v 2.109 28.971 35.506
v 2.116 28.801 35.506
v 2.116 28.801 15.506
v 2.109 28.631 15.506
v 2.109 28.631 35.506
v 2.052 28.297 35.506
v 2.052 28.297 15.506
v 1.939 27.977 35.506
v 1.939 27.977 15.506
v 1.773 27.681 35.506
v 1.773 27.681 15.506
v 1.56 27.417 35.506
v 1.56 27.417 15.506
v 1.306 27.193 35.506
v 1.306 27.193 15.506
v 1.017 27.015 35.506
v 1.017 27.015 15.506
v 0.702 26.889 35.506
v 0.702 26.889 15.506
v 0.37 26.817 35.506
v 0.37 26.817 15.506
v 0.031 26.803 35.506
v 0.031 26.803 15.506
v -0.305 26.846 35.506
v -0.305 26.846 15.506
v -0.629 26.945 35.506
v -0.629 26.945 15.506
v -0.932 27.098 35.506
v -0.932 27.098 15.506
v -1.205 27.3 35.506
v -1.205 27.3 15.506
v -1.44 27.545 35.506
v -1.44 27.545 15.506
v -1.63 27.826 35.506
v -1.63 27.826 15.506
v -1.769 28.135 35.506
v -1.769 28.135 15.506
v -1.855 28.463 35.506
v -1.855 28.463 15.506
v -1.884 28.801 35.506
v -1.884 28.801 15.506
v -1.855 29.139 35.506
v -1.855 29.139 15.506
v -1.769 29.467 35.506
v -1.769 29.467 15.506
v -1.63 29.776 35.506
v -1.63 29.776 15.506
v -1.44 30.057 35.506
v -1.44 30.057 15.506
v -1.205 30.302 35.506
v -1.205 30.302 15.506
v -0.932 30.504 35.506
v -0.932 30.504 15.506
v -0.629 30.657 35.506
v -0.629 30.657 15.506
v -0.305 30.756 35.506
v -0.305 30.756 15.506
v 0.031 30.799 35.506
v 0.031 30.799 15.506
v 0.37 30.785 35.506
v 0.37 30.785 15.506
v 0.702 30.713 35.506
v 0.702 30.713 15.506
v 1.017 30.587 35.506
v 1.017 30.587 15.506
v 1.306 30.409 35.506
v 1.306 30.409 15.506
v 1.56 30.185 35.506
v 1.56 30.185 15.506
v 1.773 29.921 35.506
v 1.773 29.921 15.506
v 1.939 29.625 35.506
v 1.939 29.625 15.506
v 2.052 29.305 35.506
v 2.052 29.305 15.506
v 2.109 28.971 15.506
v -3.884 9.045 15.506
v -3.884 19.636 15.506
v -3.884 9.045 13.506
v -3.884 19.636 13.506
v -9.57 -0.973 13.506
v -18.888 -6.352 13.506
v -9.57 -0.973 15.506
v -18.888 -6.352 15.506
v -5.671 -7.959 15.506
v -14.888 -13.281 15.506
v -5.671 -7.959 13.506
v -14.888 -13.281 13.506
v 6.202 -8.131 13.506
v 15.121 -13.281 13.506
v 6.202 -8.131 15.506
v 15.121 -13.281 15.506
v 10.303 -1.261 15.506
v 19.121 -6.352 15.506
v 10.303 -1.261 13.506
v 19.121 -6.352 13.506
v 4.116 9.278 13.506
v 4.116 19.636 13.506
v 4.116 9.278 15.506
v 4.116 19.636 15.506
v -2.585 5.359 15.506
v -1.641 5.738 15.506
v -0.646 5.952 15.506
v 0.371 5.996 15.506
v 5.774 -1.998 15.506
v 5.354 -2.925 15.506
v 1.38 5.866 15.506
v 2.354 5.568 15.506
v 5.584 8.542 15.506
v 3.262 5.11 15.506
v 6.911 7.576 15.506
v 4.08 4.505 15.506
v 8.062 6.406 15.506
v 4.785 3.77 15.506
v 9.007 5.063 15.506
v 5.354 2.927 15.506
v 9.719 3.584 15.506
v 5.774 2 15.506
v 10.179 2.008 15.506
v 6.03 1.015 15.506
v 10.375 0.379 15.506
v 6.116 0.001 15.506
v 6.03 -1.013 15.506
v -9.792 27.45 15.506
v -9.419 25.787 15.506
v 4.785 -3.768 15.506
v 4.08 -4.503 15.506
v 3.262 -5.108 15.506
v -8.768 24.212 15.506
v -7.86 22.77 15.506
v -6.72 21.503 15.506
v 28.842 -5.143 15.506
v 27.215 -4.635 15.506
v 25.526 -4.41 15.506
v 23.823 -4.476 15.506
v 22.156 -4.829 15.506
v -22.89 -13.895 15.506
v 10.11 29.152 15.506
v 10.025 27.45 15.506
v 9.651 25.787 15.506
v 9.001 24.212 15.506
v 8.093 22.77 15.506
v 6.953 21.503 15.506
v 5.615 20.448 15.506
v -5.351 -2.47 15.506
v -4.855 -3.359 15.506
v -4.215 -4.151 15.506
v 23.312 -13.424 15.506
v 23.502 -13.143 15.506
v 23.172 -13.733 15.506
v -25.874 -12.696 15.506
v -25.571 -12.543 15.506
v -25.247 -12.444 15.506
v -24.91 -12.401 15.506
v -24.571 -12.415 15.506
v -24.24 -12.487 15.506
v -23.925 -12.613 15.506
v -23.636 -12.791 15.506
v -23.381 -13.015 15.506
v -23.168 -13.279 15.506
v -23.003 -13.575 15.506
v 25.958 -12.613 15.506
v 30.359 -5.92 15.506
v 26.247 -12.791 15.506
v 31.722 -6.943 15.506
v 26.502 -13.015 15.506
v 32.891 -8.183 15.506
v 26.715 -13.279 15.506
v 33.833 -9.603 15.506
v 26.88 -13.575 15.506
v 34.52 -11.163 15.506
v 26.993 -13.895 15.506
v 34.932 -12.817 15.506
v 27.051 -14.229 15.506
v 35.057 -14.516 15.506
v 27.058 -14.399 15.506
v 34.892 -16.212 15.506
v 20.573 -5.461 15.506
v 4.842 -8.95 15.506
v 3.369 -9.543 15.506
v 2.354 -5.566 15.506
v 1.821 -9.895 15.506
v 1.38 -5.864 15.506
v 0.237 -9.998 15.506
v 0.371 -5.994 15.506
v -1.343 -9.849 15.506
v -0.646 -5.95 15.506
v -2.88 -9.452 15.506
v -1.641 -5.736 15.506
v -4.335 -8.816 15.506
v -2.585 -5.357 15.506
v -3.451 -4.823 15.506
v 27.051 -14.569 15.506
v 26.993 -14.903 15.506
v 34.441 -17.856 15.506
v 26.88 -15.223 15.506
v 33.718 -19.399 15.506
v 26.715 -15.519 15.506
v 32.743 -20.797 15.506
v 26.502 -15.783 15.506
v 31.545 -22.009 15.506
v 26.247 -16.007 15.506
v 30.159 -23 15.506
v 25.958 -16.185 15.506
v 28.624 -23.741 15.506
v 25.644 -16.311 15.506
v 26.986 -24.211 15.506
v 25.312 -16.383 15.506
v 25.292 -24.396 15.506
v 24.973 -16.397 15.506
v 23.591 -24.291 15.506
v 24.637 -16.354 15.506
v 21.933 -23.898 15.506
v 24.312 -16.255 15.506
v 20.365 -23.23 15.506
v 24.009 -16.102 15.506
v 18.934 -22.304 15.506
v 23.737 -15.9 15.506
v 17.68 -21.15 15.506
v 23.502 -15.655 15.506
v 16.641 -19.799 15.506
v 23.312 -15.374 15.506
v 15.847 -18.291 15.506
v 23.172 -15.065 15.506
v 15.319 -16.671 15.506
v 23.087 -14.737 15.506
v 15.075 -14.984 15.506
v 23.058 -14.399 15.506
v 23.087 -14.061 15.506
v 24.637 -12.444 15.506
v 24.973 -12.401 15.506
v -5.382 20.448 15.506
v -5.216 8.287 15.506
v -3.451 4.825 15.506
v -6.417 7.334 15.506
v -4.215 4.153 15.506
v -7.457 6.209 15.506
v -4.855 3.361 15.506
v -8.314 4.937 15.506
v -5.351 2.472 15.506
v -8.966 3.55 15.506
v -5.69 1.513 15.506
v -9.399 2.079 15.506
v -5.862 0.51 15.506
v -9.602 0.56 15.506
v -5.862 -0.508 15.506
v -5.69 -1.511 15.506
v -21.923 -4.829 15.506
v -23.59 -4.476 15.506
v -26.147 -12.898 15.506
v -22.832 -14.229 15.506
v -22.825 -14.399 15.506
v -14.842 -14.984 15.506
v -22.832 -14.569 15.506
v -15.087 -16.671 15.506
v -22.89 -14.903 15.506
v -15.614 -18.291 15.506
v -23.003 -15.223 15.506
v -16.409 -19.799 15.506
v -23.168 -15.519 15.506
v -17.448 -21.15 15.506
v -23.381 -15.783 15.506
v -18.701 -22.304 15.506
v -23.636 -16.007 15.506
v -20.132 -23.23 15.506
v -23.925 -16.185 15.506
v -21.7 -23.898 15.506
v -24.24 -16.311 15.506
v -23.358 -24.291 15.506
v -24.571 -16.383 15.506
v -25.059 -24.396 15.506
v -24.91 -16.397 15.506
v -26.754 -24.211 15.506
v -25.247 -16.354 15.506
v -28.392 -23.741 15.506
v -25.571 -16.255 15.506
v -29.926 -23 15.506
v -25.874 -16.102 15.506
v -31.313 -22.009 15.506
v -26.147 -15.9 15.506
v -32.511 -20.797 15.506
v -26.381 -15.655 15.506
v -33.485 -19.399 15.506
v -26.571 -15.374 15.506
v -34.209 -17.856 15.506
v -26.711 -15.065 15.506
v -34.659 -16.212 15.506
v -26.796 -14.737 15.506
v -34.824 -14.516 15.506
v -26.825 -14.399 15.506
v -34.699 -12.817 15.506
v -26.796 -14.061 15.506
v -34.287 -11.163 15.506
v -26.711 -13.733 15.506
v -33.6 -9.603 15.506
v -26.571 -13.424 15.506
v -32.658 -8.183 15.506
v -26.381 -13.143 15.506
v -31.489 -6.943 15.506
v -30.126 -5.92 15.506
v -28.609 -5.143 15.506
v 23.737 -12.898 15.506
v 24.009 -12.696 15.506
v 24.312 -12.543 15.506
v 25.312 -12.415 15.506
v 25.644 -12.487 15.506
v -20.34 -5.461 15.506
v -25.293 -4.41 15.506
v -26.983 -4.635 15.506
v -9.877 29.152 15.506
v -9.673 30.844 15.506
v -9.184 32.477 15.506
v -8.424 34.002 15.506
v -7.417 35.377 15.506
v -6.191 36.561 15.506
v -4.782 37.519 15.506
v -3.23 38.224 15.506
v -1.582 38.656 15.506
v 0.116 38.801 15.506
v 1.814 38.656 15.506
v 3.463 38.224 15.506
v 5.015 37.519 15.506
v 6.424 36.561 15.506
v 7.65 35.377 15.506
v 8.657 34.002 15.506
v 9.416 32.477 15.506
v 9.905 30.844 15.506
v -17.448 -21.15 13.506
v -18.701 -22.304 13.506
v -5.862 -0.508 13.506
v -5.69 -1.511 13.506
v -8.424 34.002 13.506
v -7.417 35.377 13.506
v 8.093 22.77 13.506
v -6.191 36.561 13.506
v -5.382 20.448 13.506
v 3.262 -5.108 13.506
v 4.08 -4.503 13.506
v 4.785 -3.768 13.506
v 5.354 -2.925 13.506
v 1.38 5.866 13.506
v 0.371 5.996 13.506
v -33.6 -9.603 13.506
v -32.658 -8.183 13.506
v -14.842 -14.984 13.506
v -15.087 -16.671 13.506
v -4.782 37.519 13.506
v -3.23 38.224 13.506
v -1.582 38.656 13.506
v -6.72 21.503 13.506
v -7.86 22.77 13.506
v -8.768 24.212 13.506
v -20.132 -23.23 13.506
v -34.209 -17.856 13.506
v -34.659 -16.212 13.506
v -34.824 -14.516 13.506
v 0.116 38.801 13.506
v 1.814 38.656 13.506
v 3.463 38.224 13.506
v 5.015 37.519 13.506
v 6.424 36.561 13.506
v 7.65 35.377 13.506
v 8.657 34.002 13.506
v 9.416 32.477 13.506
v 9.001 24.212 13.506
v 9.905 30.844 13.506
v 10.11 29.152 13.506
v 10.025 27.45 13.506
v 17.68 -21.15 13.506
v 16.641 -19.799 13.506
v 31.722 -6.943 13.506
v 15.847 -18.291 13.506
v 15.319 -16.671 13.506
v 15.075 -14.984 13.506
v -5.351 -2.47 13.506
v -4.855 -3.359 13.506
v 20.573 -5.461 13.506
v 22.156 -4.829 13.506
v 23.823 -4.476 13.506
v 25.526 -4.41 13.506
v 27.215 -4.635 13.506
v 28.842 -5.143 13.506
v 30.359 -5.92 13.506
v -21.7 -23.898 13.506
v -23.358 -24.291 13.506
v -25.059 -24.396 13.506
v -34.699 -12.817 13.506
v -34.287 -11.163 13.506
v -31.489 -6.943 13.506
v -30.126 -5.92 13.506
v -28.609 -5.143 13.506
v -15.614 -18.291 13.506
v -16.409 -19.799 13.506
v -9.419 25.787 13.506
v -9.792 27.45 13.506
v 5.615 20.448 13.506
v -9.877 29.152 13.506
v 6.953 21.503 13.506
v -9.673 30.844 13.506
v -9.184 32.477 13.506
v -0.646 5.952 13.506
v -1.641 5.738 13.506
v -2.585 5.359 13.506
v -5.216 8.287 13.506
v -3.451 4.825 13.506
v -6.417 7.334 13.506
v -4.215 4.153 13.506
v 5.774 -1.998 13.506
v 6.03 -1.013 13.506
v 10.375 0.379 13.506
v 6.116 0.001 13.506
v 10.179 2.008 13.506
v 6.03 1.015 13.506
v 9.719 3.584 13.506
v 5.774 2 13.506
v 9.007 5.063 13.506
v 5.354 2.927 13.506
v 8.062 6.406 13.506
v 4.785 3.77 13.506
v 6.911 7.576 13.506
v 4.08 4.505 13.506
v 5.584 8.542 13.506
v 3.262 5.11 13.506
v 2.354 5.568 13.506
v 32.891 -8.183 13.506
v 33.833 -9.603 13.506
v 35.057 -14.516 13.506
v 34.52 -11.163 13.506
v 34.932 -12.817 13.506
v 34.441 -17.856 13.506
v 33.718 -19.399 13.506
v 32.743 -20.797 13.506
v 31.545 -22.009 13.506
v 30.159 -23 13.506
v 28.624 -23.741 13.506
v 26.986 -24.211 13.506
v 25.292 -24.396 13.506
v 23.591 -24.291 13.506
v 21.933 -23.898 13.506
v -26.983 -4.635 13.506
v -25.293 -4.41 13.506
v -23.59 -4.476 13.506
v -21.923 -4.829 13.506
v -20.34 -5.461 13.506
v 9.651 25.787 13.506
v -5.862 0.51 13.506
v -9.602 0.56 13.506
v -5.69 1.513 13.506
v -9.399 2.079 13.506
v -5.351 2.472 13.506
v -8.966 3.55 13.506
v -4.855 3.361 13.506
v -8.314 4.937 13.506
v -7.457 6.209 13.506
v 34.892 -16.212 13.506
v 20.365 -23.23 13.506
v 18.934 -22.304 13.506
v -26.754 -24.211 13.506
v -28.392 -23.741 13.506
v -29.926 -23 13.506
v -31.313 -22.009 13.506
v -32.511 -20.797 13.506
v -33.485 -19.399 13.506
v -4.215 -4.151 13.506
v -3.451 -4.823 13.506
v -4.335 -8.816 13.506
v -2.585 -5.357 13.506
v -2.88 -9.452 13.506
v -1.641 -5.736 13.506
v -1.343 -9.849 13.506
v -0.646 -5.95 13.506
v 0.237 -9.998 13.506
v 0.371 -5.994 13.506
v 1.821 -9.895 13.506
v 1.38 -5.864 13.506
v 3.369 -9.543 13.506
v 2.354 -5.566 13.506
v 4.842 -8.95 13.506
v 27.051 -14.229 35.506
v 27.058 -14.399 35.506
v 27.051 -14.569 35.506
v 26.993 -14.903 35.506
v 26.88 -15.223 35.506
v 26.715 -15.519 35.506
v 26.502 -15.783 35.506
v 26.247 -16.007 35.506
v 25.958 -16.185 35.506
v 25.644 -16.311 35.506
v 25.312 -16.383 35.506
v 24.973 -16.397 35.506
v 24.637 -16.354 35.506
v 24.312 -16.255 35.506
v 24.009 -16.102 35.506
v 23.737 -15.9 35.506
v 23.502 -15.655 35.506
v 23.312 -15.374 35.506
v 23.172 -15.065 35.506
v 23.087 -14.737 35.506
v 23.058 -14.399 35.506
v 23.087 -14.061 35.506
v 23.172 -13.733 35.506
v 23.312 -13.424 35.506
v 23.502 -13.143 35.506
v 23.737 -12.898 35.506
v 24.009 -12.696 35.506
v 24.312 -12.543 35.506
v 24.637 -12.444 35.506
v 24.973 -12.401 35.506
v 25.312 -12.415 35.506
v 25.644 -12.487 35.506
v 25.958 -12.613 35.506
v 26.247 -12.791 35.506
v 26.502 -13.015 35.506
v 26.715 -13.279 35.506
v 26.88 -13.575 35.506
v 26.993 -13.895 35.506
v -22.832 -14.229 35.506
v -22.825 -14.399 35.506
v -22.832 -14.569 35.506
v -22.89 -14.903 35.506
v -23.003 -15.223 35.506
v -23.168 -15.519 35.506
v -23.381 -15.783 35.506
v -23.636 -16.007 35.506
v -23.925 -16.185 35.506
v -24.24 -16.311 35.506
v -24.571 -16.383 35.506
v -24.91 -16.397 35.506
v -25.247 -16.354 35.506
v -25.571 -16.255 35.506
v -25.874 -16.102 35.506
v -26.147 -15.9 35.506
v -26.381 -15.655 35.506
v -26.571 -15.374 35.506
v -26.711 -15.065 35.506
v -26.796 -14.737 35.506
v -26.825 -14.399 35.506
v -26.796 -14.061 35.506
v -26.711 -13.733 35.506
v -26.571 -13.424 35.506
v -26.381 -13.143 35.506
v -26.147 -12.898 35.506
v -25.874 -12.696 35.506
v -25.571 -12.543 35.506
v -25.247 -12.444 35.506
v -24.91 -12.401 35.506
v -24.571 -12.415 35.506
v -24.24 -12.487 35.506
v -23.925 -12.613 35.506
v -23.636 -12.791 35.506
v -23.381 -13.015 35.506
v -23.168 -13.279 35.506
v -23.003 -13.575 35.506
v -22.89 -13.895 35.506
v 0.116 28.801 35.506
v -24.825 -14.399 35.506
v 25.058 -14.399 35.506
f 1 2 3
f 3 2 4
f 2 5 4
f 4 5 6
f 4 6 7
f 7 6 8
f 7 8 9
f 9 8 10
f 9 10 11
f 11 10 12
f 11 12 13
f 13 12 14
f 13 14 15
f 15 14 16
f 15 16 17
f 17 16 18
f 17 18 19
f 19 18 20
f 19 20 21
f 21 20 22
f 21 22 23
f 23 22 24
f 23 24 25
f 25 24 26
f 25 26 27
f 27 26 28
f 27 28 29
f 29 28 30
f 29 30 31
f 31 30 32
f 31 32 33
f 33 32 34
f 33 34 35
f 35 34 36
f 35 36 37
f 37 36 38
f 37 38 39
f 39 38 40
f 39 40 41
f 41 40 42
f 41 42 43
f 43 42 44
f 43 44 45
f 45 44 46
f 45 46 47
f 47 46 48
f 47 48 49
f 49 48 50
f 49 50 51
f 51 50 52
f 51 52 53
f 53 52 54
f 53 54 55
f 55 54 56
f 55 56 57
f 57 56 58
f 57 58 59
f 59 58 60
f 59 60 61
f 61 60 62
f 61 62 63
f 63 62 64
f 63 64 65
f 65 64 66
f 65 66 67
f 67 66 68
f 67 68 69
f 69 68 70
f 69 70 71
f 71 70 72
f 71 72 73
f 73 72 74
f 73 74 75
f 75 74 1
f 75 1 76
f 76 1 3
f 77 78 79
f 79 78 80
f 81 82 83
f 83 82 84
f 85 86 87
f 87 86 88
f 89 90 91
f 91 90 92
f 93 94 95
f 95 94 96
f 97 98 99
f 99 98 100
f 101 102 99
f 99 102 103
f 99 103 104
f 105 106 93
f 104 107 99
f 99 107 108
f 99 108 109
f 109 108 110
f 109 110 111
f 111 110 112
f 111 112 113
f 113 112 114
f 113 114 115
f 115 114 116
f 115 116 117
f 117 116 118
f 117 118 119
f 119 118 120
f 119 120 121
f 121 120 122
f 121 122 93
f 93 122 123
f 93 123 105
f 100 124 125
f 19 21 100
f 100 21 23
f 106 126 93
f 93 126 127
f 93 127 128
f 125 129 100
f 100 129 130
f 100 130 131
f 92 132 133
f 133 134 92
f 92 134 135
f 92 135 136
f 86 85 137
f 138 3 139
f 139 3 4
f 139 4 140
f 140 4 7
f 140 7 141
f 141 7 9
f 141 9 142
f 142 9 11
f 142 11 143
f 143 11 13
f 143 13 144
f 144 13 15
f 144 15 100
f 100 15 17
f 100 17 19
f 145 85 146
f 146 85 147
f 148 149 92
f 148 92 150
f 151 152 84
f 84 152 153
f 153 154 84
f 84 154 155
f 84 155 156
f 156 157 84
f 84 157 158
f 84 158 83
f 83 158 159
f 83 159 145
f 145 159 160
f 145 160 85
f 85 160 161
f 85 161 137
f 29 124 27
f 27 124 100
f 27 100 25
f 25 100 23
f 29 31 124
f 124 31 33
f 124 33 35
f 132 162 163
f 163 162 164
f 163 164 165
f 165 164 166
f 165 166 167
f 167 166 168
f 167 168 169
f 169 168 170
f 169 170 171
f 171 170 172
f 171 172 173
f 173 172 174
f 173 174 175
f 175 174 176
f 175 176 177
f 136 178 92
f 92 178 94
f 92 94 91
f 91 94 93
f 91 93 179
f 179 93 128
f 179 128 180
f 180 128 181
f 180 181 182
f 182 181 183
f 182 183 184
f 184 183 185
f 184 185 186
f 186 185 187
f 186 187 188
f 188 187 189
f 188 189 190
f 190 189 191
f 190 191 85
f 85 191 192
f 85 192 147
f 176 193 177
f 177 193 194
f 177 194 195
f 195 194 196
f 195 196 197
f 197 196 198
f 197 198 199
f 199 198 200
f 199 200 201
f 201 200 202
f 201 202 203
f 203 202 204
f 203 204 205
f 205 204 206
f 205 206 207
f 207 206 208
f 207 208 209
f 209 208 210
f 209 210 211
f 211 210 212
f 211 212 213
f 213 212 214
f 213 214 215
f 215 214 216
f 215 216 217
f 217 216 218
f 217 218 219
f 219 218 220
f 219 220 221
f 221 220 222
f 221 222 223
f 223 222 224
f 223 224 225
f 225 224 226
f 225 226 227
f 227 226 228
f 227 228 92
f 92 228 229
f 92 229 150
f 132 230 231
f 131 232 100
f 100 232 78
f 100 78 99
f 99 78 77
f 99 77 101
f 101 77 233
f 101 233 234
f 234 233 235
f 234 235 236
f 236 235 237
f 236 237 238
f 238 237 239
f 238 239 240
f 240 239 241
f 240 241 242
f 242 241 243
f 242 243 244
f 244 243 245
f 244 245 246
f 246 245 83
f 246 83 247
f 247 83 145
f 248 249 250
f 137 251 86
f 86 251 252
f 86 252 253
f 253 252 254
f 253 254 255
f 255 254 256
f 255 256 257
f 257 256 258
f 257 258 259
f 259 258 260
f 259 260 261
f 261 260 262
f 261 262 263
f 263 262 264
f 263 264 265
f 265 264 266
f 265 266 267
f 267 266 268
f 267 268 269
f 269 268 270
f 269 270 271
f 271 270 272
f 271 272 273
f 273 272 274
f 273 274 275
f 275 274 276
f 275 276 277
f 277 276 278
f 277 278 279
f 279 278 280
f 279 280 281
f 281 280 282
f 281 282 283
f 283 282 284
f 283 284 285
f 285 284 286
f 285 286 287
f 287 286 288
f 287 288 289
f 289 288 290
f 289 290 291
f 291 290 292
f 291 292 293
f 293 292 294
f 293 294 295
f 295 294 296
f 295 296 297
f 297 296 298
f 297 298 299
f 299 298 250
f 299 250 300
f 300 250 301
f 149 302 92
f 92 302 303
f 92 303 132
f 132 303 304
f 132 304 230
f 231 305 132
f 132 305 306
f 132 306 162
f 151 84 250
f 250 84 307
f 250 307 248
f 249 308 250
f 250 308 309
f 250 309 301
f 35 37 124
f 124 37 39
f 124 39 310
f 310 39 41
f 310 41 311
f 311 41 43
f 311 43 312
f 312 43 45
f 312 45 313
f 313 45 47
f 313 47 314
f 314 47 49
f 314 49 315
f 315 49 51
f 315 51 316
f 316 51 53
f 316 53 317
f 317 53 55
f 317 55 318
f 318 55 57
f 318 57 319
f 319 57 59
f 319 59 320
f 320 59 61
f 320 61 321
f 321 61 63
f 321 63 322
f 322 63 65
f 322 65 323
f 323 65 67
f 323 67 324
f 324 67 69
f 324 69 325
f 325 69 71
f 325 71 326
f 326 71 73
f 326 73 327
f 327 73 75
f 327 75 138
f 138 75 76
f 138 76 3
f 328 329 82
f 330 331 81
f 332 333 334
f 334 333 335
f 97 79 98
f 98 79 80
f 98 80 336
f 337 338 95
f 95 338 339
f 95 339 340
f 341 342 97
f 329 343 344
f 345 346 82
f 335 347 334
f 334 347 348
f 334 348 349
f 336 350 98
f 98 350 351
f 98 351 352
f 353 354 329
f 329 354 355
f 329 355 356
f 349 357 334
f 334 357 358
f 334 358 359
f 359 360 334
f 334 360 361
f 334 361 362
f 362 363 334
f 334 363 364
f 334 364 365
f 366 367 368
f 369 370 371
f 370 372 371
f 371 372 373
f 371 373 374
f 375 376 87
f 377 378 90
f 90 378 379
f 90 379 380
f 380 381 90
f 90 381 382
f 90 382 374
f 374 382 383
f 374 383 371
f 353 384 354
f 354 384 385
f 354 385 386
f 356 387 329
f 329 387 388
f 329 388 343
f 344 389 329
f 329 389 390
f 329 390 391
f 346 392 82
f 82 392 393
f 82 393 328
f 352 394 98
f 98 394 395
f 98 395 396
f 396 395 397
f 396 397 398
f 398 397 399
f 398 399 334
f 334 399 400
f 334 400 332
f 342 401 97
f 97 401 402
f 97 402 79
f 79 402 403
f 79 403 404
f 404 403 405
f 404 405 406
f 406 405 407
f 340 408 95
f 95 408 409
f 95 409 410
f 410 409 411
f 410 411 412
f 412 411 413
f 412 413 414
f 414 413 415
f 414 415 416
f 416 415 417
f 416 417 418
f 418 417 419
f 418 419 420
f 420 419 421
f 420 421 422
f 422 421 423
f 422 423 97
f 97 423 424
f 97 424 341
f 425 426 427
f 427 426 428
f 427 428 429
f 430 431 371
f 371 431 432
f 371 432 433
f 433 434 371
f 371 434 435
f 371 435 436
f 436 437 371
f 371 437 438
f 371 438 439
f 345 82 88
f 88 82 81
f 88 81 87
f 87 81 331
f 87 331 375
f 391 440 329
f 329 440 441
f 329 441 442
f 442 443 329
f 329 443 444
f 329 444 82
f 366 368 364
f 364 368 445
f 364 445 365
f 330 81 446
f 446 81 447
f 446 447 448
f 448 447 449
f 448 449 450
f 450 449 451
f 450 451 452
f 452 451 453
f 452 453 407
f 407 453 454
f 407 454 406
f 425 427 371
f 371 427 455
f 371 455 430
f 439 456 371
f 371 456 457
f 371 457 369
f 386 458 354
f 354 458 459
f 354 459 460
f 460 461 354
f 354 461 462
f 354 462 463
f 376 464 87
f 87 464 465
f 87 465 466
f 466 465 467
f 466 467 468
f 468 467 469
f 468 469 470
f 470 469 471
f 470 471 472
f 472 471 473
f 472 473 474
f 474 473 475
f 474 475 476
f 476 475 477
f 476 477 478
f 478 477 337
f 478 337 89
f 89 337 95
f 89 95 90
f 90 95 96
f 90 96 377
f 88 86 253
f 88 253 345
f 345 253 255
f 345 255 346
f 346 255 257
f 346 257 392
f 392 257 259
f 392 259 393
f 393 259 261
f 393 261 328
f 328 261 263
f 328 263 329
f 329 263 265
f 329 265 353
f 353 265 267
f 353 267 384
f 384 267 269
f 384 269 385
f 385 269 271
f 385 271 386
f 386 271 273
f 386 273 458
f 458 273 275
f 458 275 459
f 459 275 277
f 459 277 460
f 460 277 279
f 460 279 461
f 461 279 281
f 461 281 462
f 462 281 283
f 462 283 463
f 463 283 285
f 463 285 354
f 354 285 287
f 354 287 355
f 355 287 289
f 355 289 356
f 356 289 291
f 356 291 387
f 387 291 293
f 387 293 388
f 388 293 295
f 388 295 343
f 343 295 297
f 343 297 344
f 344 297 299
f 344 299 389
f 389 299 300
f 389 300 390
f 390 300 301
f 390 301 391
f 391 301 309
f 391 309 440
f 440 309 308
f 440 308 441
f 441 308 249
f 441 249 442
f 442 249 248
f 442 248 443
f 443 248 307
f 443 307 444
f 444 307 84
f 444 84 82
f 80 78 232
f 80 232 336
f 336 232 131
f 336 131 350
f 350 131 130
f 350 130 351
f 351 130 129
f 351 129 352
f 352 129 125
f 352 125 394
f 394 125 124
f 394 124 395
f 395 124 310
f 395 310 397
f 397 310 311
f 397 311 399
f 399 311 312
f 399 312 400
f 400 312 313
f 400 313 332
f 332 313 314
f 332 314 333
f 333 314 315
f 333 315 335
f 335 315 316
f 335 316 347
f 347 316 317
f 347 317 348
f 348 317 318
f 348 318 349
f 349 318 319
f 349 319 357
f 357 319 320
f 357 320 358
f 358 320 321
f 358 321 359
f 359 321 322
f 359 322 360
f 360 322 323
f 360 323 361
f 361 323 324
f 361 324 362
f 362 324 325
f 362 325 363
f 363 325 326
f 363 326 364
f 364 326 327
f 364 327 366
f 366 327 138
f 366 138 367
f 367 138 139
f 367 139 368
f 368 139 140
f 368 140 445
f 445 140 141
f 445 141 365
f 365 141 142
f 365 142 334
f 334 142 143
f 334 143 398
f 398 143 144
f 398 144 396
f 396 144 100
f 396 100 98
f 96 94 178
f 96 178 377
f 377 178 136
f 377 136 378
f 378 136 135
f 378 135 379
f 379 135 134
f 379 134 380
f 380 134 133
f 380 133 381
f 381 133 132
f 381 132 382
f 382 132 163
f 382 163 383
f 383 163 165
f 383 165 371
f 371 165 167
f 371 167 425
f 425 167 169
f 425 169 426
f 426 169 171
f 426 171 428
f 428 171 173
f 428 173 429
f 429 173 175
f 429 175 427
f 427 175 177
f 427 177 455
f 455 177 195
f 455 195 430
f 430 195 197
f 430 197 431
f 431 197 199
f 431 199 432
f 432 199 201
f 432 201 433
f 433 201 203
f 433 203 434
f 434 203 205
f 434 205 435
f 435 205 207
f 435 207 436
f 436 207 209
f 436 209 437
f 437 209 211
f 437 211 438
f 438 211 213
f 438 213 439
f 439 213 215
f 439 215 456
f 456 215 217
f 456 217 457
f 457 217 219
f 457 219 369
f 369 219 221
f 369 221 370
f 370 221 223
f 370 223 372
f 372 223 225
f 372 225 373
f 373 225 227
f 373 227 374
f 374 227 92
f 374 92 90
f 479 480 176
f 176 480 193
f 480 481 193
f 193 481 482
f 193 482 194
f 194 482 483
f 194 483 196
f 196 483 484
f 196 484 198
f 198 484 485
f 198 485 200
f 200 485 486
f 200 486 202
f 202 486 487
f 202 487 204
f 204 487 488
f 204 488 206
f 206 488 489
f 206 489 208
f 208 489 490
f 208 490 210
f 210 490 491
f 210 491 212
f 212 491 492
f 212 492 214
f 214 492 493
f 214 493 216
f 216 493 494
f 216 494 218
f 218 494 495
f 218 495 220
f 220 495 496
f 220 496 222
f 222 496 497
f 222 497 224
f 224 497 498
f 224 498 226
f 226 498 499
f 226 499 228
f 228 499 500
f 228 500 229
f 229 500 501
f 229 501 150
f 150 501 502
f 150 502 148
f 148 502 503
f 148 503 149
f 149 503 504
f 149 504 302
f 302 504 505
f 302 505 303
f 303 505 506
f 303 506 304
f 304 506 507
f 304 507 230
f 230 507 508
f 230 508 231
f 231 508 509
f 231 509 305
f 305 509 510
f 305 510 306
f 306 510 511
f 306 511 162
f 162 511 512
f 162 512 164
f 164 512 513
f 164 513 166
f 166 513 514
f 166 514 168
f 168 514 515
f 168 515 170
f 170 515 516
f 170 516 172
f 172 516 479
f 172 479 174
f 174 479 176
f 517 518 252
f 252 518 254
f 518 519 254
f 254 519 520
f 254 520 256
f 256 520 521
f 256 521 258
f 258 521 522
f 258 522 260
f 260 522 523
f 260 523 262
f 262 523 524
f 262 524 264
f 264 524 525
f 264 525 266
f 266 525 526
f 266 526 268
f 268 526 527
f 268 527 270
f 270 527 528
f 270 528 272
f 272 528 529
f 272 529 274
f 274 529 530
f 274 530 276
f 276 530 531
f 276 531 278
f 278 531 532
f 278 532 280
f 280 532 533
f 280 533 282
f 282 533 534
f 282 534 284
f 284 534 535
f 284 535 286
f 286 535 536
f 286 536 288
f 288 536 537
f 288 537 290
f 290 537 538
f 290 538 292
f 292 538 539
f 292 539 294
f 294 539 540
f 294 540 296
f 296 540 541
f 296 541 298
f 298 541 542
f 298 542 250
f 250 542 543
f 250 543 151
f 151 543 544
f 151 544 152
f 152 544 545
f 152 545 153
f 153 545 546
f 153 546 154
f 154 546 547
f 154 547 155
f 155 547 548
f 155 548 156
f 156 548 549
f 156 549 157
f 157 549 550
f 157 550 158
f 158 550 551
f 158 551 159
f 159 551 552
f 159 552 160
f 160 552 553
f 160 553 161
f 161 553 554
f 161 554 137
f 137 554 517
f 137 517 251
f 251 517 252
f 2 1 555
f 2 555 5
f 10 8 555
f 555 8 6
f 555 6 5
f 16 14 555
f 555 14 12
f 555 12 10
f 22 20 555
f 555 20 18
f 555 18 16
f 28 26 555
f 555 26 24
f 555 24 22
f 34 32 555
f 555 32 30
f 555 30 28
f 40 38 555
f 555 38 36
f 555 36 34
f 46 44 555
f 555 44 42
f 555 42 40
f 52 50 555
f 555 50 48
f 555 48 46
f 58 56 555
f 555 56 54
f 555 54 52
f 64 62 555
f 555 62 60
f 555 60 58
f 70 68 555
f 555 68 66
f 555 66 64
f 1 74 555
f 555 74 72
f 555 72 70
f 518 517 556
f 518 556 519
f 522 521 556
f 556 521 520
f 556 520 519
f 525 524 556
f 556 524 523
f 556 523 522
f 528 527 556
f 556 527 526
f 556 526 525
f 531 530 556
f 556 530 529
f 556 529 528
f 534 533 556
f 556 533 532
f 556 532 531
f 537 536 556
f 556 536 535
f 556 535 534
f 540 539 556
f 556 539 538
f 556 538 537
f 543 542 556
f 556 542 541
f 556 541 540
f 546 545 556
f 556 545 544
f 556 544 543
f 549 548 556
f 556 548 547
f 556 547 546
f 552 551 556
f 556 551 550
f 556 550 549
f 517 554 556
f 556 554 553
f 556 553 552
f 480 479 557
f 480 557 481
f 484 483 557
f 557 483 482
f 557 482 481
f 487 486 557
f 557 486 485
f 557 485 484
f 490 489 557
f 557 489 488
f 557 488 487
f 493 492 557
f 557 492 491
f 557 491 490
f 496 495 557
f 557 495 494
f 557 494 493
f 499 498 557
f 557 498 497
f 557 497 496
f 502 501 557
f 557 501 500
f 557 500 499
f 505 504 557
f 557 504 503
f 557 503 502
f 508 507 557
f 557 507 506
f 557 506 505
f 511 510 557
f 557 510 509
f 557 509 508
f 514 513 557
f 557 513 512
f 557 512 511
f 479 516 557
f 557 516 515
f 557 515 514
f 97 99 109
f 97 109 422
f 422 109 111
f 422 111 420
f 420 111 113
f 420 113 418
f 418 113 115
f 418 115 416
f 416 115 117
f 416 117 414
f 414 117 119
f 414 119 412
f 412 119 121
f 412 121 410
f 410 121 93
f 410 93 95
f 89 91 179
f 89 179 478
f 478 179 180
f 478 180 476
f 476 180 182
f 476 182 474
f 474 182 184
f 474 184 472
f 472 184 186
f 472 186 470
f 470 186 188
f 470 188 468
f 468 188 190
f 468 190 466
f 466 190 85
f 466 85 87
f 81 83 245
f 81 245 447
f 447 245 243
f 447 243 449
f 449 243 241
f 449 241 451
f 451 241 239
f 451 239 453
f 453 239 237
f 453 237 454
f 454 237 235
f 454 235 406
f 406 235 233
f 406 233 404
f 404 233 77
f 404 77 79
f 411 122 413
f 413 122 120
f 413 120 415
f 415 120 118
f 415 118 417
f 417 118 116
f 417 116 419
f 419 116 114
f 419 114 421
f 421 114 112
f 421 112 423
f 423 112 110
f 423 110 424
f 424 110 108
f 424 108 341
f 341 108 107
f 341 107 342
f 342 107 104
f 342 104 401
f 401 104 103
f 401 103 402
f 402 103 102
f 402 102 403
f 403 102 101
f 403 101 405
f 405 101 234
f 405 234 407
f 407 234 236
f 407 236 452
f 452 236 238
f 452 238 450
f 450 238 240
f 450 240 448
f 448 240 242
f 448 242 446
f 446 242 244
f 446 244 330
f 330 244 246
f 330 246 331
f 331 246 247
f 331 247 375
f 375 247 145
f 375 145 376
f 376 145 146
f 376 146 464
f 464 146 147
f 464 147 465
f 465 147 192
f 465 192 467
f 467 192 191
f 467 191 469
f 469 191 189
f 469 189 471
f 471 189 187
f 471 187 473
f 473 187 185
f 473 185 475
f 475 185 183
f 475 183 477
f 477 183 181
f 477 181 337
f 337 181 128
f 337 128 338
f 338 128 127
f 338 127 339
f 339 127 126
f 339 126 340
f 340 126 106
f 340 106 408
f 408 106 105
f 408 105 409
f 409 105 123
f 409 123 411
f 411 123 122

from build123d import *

# Parameters (mm, degrees)
BOSS_EXTRUDE2_DEPTH = 10
SKETCH3_R           = 50
BOSS_EXTRUDE3_DEPTH = 10
SKETCH4_R           = 10
BOSS_EXTRUDE4_DEPTH = 90
CUT_EXTRUDE1_START  = -30
SKETCH5_R           = 10
CUT_EXTRUDE1_DEPTH  = 30
SKETCH6_R           = 13
CUT_EXTRUDE2_DEPTH  = 10
SKETCH7_R           = 10
BOSS_EXTRUDE5_DEPTH = 30
SKETCH9_R           = 10
BOSS_EXTRUDE6_DEPTH = 10
SKETCH10_R          = 10
BOSS_EXTRUDE7_DEPTH = 10
SKETCH11_R          = 10
BOSS_EXTRUDE8_DEPTH = 10
SKETCH12_R          = 50
BOSS_EXTRUDE9_DEPTH = 10
SKETCH13_R          = 30
CUT_EXTRUDE3_DEPTH  = 10
SCALE1_SCALE        = 0.2


with BuildPart() as part:
    # Sketch1 → Boss-Extrude2 (new body)
    with BuildSketch(Plane.XY):
        Polygon((20, 144), (-20, 144), (-20, 11.547005384), (-134.707658145, -54.679491924), (-114.707658145, -89.320508076), (0, -23.094010768), (114.707658145, -89.320508076), (134.707658145, -54.679491924), (20, 11.547005384), align=None)
    extrude(amount=BOSS_EXTRUDE2_DEPTH)

    # Sketch3 → Boss-Extrude3 (add)
    with BuildSketch(Plane.XY.offset(10)):
        with Locations((-124.707658145, -72)):
            Circle(SKETCH3_R)
        with Locations((0, 144)):
            Circle(SKETCH3_R)
        with Locations((124.707658145, -72)):
            Circle(SKETCH3_R)
    extrude(amount=-BOSS_EXTRUDE3_DEPTH)

    # Sketch4 → Boss-Extrude4 (add)
    with BuildSketch(Plane.XY.offset(10)):
        with Locations(Location((0, 144, 0), (0, 0, 180))):
            Circle(SKETCH4_R)
        with Locations(Location((124.707658145, -72, 0), (0, 0, 180))):
            Circle(SKETCH4_R)
        with Locations(Location((-124.707658145, -72, 0), (0, 0, 180))):
            Circle(SKETCH4_R)
    extrude(amount=BOSS_EXTRUDE4_DEPTH)

    # Sketch5 → Cut-Extrude1 (cut)
    with BuildSketch(Plane.XY.offset(100).offset(CUT_EXTRUDE1_START)):
        with Locations(Location((0, 144, 0), (0, 0, 180))):
            Circle(SKETCH5_R)
    extrude(amount=CUT_EXTRUDE1_DEPTH, mode=Mode.SUBTRACT)

    # Sketch6 → Cut-Extrude2 (cut)
    with BuildSketch(Plane.XY.offset(10)):
        Circle(SKETCH6_R)
    extrude(amount=-CUT_EXTRUDE2_DEPTH, mode=Mode.SUBTRACT)

    # Sketch7 → Boss-Extrude5 (add)
    with BuildSketch(Plane.XY.offset(70)):
        with Locations(Location((0, 144, 0), (0, 0, 180))):
            Circle(SKETCH7_R)
    extrude(amount=BOSS_EXTRUDE5_DEPTH)

    # Sketch9 → Boss-Extrude6 (add)
    with BuildSketch(Plane.XY.offset(100)):
        with Locations(Location((0, 144, 0), (0, 0, 180))):
            Circle(SKETCH9_R)
    extrude(amount=BOSS_EXTRUDE6_DEPTH)

    # Sketch10 → Boss-Extrude7 (add)
    with BuildSketch(Plane.XY.offset(100)):
        with Locations(Location((-124.707658145, -72, 0), (0, 0, 180))):
            Circle(SKETCH10_R)
    extrude(amount=BOSS_EXTRUDE7_DEPTH)

    # Sketch11 → Boss-Extrude8 (add)
    with BuildSketch(Plane.XY.offset(100)):
        with Locations(Location((124.707658145, -72, 0), (0, 0, 180))):
            Circle(SKETCH11_R)
    extrude(amount=BOSS_EXTRUDE8_DEPTH)

    # Sketch12 → Boss-Extrude9 (add)
    with BuildSketch(Plane.XY.offset(10)):
        with Locations((1.330805308, 0)):
            Circle(SKETCH12_R)
    extrude(amount=-BOSS_EXTRUDE9_DEPTH)

    # Sketch13 → Cut-Extrude3 (cut)
    with BuildSketch(Plane.XY.offset(10)):
        Circle(SKETCH13_R)
    extrude(amount=-CUT_EXTRUDE3_DEPTH, mode=Mode.SUBTRACT)


with BuildPart() as part_1:
    # Scale1: scaled about (0.145453699, 0.001217976, 16.882898765)
    add(part.part.scale(SCALE1_SCALE).moved(Location((0.116362959, 0.000974381, 13.506319012))))


solid = part_1.part
